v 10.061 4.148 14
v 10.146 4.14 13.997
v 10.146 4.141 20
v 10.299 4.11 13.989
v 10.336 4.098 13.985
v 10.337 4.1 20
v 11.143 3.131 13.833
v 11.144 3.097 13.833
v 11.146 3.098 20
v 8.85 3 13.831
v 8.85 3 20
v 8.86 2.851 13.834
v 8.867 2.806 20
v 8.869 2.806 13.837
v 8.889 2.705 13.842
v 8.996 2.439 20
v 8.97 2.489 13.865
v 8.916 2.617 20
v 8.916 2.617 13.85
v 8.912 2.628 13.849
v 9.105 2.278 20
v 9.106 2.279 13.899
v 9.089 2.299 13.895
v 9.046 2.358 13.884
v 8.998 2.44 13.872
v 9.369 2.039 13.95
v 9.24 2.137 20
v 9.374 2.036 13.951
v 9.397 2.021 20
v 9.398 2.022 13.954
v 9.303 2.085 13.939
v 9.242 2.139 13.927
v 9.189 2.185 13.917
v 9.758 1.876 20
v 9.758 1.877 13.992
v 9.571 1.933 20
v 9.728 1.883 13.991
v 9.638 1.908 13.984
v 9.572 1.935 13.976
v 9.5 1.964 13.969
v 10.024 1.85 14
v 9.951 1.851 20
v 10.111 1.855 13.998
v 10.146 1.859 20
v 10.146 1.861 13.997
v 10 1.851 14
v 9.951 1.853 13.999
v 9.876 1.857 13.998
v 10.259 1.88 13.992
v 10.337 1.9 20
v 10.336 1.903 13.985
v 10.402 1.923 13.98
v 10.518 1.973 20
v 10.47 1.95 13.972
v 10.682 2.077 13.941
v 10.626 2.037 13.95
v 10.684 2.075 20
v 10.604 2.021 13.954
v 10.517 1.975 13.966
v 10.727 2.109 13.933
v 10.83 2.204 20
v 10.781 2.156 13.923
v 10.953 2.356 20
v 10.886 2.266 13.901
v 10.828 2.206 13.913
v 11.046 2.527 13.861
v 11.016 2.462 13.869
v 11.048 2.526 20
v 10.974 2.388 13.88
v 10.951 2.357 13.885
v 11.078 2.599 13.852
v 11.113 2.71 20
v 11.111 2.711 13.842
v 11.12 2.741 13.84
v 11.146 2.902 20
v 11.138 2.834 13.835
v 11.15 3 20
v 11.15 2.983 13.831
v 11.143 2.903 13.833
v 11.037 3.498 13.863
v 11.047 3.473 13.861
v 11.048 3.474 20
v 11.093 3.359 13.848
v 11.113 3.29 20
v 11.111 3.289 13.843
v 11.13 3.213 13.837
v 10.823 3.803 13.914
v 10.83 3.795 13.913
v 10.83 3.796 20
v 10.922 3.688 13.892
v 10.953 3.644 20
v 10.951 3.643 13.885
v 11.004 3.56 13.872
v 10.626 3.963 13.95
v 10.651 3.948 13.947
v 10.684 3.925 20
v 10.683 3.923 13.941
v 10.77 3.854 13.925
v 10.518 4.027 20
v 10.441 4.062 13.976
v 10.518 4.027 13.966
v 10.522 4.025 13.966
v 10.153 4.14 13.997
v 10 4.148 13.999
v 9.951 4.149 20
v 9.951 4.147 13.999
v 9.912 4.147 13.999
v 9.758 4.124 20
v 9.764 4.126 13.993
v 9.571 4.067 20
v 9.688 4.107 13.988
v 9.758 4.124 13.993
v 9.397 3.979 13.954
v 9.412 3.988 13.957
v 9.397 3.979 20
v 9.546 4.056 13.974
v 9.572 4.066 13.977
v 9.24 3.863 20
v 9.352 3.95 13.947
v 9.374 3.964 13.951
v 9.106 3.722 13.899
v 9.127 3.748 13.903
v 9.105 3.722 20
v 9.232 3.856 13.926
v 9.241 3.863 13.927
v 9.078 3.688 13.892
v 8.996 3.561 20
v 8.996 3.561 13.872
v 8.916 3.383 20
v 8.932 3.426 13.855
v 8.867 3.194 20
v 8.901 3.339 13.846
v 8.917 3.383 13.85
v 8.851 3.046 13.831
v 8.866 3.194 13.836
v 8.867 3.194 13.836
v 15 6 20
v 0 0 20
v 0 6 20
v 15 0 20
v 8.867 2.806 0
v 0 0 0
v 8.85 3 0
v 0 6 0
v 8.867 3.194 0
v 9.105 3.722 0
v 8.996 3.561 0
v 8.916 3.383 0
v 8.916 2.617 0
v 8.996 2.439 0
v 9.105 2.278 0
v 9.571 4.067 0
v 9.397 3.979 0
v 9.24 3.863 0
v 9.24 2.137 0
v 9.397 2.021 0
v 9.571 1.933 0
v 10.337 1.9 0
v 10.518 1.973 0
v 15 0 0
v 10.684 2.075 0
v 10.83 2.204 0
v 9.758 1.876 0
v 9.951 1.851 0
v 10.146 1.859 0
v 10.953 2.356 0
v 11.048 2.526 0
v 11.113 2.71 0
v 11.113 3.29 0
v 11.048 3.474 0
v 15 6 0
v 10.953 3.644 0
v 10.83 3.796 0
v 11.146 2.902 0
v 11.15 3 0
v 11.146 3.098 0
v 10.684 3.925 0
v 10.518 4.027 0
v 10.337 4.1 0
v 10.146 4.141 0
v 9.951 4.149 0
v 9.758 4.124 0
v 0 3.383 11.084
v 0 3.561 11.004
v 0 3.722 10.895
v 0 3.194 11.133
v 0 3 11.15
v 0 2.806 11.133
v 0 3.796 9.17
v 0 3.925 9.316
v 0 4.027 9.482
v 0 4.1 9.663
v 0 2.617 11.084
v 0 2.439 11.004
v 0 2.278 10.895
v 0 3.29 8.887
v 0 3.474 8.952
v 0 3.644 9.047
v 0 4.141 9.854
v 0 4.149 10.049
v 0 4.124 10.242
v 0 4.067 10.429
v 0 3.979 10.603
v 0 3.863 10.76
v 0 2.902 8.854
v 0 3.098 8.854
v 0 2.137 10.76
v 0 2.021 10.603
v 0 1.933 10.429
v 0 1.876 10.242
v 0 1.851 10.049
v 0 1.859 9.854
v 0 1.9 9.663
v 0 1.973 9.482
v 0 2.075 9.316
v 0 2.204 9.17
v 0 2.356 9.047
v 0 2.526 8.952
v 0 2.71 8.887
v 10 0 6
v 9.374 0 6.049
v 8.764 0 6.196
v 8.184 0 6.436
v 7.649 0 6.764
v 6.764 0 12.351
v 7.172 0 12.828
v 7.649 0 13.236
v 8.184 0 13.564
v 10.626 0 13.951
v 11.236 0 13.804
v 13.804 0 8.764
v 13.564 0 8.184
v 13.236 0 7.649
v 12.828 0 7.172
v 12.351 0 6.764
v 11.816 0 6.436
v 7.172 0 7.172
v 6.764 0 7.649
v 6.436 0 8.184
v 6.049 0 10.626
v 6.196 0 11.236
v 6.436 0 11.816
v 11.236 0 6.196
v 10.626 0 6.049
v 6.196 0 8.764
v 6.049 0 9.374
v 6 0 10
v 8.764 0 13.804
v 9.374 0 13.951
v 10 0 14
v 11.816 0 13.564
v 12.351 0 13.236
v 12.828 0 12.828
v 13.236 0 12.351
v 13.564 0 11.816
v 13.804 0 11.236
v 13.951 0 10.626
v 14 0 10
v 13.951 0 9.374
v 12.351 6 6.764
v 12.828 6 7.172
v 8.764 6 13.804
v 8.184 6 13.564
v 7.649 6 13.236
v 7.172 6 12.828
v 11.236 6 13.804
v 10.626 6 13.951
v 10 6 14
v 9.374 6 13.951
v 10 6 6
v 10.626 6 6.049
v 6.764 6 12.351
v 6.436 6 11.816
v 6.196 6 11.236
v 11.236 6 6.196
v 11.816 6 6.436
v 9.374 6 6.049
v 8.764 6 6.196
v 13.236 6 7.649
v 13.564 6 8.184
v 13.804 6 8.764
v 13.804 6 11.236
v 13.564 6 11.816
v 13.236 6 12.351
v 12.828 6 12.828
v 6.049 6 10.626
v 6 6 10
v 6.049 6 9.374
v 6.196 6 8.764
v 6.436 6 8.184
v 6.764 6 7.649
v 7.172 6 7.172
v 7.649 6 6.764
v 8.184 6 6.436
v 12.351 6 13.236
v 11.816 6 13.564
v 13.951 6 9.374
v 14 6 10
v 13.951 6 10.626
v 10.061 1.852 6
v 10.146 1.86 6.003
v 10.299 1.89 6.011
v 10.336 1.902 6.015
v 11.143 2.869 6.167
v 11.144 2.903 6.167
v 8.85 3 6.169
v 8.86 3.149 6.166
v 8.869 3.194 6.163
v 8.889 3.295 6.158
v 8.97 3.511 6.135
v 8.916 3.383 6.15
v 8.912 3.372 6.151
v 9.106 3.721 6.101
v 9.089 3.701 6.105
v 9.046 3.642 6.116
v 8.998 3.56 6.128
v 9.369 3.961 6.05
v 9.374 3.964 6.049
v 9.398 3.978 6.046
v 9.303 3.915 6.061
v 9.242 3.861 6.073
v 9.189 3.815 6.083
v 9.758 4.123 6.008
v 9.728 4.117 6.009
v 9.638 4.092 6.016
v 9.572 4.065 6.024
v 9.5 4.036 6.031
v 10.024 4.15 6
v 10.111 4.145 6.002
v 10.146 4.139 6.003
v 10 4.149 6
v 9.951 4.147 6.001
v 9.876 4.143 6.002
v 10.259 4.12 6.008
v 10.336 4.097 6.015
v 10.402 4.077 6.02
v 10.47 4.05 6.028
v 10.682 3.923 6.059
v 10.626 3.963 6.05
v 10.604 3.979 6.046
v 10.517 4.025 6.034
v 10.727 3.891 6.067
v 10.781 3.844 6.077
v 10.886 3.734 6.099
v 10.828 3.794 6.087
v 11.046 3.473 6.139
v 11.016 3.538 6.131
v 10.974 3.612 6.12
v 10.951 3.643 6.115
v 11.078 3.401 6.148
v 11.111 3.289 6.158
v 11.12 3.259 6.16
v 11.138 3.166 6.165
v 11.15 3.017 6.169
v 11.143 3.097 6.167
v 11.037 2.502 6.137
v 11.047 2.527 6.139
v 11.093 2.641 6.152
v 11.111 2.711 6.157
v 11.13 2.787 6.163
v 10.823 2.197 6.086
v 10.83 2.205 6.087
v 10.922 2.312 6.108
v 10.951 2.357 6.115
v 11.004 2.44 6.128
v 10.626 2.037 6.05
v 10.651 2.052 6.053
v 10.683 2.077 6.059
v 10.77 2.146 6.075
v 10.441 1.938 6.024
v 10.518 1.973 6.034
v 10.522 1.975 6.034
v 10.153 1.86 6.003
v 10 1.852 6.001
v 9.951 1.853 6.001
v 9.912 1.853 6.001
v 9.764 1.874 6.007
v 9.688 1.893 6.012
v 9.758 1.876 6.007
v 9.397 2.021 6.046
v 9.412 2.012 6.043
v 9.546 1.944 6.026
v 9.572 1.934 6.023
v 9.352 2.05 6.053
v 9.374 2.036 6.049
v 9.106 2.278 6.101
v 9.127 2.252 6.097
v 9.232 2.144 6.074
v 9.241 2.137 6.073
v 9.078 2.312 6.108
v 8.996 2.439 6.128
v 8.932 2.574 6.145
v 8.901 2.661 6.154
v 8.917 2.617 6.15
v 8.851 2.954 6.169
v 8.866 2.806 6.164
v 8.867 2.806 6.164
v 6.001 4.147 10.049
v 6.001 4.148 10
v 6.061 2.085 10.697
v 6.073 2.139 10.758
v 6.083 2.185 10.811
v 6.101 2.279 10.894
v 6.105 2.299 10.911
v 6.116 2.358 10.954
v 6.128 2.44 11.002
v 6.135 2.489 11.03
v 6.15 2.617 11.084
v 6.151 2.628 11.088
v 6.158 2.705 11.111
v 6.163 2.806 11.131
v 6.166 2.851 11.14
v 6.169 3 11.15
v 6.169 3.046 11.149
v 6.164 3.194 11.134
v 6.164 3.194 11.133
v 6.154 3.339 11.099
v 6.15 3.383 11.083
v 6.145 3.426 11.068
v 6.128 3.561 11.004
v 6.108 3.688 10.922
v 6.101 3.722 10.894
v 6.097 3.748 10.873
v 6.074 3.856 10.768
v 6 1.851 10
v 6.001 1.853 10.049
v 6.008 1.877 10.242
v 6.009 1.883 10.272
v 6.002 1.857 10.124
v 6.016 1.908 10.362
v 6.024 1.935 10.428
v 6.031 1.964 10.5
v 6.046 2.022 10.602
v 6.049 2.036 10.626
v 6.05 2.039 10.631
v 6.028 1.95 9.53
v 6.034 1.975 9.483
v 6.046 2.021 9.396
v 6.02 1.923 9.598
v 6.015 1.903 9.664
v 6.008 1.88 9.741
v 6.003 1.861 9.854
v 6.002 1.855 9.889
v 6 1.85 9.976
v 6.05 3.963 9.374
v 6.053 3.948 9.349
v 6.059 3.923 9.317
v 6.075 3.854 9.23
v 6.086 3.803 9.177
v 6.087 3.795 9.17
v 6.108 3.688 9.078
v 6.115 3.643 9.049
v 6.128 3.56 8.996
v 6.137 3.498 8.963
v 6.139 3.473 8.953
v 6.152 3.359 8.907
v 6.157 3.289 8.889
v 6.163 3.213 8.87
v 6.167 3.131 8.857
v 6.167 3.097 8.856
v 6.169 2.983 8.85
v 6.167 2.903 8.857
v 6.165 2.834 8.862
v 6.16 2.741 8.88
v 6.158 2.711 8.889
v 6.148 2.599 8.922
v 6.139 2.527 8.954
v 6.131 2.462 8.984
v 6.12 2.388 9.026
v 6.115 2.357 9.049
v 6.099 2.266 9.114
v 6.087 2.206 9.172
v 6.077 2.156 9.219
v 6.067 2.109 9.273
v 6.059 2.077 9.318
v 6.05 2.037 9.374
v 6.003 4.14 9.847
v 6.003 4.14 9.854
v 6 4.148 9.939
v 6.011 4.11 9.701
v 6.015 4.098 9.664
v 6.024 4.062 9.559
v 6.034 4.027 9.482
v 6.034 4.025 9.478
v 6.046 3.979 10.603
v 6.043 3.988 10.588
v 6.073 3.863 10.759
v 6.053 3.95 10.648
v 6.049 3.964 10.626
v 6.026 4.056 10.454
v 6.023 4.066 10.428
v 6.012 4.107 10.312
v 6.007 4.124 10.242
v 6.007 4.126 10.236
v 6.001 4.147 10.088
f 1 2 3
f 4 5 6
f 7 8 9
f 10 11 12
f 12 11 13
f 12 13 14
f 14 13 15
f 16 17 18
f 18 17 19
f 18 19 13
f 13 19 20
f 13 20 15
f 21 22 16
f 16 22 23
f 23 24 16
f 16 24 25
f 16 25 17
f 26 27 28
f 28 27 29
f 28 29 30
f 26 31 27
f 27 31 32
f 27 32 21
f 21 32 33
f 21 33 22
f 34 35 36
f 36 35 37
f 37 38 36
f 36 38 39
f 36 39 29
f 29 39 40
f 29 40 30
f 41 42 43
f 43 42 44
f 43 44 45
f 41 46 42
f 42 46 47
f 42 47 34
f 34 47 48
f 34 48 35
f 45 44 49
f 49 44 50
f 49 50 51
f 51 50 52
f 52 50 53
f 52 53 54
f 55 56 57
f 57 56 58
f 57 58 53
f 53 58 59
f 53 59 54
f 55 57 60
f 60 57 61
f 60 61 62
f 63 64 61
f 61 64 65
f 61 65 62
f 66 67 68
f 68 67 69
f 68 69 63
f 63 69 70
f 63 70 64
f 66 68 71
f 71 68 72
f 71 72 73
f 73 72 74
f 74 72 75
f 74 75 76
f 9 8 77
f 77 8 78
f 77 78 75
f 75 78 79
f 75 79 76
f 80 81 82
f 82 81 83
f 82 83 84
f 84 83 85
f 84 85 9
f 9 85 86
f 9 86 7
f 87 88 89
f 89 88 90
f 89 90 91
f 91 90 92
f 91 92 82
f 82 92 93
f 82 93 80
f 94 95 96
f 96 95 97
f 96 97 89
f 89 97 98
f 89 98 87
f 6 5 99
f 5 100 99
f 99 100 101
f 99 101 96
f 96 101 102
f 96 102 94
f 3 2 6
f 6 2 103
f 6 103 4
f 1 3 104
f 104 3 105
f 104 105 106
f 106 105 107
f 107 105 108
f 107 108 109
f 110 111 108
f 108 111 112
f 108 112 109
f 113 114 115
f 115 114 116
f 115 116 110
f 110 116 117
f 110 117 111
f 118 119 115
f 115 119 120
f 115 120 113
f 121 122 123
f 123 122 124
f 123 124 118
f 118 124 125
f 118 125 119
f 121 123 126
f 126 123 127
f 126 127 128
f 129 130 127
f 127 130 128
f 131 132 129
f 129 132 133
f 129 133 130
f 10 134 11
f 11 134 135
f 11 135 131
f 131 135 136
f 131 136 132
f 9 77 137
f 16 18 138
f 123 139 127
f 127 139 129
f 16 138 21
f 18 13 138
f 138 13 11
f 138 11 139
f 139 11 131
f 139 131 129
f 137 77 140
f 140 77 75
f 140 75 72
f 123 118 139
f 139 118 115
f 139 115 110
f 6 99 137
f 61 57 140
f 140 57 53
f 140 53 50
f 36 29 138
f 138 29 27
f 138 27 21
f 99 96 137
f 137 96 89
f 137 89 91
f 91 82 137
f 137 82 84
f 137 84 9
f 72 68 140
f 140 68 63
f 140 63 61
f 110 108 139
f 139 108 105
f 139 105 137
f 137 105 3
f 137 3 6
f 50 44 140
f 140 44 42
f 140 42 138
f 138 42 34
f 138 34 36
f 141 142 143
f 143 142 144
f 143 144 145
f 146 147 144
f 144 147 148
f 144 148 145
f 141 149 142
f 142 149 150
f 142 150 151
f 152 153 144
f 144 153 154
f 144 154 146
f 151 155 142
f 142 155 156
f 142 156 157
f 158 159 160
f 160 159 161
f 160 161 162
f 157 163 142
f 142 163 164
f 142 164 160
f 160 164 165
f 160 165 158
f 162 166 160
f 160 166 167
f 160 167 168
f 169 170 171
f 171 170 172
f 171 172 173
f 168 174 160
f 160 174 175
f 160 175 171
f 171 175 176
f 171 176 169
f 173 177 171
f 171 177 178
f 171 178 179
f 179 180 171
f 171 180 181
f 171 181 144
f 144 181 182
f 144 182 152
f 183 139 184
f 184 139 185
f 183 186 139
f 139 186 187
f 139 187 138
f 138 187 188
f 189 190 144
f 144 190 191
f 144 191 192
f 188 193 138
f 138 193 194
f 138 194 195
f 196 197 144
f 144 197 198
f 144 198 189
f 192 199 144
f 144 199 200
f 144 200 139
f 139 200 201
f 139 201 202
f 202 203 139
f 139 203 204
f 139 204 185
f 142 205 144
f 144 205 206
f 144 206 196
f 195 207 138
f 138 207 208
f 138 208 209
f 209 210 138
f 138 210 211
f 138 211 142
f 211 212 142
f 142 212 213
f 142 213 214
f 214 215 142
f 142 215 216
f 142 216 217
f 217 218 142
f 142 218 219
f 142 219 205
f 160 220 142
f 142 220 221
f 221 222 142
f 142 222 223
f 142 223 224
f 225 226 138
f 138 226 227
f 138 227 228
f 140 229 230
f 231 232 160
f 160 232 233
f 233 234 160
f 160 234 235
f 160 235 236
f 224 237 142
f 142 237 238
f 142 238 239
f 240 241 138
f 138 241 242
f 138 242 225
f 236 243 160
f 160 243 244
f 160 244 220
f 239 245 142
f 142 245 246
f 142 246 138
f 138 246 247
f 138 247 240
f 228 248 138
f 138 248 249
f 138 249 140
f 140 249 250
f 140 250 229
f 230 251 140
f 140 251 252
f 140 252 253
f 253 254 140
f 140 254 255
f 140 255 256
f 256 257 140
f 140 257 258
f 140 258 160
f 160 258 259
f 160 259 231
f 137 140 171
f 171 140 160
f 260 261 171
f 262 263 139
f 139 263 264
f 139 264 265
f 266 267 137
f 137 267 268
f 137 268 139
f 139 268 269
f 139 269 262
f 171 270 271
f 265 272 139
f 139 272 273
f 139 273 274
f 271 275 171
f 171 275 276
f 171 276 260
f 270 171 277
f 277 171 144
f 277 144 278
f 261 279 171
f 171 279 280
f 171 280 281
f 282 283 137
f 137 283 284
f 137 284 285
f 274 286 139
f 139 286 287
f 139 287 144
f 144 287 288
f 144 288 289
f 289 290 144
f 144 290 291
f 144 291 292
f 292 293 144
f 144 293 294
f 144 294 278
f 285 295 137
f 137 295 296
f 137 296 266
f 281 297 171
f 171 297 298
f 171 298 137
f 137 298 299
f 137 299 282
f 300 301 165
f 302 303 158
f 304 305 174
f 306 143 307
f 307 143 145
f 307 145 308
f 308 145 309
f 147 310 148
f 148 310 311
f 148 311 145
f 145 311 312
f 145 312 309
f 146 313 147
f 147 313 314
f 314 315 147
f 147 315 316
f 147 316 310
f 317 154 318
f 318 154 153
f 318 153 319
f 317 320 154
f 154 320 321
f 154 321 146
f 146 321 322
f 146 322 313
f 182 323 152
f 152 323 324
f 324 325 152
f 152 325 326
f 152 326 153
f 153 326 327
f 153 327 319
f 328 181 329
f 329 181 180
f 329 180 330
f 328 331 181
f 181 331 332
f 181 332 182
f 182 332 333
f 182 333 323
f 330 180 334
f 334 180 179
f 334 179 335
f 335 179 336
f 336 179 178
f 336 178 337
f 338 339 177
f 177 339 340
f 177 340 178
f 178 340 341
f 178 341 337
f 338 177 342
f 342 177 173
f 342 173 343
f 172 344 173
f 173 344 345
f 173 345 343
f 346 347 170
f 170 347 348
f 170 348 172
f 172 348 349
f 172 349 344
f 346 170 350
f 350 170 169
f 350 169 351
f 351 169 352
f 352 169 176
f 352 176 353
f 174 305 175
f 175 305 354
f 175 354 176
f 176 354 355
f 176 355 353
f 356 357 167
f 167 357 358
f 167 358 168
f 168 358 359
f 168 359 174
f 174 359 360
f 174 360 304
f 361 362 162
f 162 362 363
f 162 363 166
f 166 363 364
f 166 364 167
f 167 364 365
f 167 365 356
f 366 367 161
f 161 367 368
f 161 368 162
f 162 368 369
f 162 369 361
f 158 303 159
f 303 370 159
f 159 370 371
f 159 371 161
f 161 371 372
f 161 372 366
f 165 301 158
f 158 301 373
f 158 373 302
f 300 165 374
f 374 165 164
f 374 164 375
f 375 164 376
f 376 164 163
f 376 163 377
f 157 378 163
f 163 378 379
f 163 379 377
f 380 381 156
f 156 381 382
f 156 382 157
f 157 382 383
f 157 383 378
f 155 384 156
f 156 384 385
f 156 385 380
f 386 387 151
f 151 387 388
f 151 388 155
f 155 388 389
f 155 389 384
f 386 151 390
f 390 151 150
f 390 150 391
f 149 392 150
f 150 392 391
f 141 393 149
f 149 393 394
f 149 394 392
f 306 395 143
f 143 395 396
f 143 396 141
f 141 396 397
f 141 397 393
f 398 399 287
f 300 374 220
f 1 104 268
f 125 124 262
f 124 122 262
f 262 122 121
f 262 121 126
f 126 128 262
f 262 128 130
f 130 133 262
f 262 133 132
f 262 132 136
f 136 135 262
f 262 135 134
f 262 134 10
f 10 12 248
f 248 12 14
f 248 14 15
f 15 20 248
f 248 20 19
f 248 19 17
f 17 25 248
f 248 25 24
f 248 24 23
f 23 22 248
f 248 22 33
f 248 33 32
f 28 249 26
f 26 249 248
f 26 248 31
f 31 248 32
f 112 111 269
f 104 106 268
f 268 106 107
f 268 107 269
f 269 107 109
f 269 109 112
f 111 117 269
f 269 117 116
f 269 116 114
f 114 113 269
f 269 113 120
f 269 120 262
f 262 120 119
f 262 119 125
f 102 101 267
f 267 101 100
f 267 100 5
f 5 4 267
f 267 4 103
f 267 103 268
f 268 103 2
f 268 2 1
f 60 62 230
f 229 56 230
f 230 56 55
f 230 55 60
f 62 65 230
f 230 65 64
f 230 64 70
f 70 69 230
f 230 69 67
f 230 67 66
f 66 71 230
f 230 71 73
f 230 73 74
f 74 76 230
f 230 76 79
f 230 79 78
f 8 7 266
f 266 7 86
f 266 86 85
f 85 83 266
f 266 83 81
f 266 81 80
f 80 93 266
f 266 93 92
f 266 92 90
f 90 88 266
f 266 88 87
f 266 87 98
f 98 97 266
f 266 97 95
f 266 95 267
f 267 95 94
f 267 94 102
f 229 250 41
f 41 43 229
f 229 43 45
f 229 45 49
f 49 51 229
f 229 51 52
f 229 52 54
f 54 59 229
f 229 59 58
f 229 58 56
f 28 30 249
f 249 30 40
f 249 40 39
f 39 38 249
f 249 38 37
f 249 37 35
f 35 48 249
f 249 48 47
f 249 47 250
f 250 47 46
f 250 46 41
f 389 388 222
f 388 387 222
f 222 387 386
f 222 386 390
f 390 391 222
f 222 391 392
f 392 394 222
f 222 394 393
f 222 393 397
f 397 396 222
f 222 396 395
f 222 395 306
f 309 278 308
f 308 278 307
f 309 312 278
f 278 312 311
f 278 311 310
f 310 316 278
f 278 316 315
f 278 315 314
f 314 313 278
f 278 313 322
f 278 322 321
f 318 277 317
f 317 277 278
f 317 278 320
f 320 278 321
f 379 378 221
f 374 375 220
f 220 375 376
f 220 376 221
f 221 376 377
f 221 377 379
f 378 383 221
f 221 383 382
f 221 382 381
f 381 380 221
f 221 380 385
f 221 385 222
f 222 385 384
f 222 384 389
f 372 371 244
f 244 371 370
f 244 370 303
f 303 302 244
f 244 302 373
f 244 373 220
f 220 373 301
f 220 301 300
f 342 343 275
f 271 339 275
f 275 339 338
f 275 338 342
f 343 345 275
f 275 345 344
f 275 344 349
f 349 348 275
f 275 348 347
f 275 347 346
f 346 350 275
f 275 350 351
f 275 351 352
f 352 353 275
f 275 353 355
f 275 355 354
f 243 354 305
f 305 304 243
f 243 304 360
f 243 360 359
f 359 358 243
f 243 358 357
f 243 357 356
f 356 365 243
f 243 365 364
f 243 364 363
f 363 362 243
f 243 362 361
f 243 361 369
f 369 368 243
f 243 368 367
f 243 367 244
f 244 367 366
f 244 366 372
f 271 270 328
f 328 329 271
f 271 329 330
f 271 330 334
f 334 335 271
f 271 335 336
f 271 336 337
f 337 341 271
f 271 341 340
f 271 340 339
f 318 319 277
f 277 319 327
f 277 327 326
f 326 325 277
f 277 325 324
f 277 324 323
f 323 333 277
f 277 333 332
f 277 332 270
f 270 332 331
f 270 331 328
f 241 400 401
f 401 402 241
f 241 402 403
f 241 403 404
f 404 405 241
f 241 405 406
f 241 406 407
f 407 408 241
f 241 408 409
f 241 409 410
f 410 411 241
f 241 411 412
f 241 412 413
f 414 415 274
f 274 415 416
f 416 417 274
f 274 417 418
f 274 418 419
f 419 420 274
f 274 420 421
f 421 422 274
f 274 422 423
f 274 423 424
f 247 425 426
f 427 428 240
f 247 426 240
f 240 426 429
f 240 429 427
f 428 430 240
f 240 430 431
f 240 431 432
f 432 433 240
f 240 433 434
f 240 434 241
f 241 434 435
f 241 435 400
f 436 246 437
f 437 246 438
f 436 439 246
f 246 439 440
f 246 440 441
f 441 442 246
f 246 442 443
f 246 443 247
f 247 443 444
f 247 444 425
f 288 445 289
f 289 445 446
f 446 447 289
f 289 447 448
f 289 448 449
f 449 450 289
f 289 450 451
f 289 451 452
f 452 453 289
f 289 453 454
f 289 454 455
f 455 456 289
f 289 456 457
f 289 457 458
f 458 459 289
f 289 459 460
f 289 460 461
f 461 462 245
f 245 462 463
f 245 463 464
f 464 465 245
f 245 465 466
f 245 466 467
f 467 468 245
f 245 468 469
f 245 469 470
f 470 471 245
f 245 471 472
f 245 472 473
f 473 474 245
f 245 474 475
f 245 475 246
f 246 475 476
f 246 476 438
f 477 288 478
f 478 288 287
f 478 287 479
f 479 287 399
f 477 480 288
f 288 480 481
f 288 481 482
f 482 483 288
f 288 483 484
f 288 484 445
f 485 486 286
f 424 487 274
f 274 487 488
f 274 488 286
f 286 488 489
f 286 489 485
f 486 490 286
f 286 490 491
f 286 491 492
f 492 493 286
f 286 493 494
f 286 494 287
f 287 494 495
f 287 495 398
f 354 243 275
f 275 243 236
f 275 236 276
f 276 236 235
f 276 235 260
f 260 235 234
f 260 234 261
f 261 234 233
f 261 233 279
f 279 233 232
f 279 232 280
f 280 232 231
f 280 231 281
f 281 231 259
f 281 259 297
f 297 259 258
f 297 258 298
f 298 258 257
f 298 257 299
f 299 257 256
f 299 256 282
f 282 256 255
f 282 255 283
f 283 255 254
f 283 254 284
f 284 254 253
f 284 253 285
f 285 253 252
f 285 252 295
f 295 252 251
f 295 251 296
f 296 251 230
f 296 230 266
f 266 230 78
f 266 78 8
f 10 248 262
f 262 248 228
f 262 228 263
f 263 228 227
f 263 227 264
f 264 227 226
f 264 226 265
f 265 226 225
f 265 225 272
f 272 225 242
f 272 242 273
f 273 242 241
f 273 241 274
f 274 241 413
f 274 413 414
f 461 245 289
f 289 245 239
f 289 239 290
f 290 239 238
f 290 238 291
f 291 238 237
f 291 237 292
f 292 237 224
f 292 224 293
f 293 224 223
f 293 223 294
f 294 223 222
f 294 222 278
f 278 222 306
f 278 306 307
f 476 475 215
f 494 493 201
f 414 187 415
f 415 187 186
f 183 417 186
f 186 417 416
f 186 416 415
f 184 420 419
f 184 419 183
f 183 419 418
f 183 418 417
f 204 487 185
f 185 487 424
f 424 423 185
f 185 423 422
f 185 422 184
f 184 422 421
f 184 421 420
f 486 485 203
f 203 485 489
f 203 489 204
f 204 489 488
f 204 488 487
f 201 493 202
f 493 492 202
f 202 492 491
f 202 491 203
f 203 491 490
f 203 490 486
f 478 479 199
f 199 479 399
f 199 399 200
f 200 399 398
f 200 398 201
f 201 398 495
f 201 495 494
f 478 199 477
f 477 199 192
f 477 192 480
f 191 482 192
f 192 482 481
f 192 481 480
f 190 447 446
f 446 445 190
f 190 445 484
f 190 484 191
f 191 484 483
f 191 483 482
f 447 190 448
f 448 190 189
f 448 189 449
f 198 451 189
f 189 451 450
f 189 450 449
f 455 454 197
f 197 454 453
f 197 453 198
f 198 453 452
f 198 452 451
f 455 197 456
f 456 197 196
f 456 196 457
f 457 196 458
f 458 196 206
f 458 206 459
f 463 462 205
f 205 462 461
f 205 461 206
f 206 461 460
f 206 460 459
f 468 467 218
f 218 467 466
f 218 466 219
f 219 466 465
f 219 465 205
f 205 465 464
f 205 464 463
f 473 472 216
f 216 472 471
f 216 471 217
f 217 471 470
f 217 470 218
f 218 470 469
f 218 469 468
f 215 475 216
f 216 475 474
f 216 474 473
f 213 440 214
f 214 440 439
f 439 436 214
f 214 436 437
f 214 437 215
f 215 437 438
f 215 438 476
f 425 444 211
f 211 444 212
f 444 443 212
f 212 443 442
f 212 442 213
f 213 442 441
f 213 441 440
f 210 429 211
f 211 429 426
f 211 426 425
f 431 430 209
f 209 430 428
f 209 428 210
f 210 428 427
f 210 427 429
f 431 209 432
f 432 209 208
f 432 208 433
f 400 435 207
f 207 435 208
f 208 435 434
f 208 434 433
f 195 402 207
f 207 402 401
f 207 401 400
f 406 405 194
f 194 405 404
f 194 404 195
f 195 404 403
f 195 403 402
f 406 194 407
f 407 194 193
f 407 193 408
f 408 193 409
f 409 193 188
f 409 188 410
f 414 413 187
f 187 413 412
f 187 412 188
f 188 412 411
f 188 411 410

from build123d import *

# Parameters (mm, degrees)
SKETCH1_W           = 15
SKETCH1_H           = 6
SKETCH1_R           = 1.15
BOSS_EXTRUDE1_DEPTH = 20
SKETCH2_R           = 4
CUT_EXTRUDE2_DEPTH  = 20
CUT_EXTRUDE3_REACH  = 17
SKETCH4_R           = 1.15


with BuildPart() as part:
    # Sketch1 → Boss-Extrude1 (new body)
    with BuildSketch(Plane.XY):
        with Locations((7.5, 3)):
            Rectangle(SKETCH1_W, SKETCH1_H)
        with Locations((10, 3)):
            Circle(SKETCH1_R, mode=Mode.SUBTRACT)
    extrude(amount=BOSS_EXTRUDE1_DEPTH)

    # Sketch2 → Cut-Extrude2 (cut)
    with BuildSketch(Plane.XZ):
        with Locations((10, 10)):
            Circle(SKETCH2_R)
    extrude(amount=-CUT_EXTRUDE2_DEPTH, mode=Mode.SUBTRACT)

    # Sketch4 → Cut-Extrude3 (cut, up to next)
    with BuildSketch(Plane.ZY, mode=Mode.PRIVATE) as cut_extrude3_sk1:
        with Locations((10, 3)):
            Circle(SKETCH4_R)
    cut_extrude3_tool1 = extrude(cut_extrude3_sk1.sketch, amount=-CUT_EXTRUDE3_REACH, mode=Mode.PRIVATE) & part.part
    add(cut_extrude3_tool1.solids().sort_by_distance((0, 3, 10))[0], mode=Mode.SUBTRACT)


solid = part.part
